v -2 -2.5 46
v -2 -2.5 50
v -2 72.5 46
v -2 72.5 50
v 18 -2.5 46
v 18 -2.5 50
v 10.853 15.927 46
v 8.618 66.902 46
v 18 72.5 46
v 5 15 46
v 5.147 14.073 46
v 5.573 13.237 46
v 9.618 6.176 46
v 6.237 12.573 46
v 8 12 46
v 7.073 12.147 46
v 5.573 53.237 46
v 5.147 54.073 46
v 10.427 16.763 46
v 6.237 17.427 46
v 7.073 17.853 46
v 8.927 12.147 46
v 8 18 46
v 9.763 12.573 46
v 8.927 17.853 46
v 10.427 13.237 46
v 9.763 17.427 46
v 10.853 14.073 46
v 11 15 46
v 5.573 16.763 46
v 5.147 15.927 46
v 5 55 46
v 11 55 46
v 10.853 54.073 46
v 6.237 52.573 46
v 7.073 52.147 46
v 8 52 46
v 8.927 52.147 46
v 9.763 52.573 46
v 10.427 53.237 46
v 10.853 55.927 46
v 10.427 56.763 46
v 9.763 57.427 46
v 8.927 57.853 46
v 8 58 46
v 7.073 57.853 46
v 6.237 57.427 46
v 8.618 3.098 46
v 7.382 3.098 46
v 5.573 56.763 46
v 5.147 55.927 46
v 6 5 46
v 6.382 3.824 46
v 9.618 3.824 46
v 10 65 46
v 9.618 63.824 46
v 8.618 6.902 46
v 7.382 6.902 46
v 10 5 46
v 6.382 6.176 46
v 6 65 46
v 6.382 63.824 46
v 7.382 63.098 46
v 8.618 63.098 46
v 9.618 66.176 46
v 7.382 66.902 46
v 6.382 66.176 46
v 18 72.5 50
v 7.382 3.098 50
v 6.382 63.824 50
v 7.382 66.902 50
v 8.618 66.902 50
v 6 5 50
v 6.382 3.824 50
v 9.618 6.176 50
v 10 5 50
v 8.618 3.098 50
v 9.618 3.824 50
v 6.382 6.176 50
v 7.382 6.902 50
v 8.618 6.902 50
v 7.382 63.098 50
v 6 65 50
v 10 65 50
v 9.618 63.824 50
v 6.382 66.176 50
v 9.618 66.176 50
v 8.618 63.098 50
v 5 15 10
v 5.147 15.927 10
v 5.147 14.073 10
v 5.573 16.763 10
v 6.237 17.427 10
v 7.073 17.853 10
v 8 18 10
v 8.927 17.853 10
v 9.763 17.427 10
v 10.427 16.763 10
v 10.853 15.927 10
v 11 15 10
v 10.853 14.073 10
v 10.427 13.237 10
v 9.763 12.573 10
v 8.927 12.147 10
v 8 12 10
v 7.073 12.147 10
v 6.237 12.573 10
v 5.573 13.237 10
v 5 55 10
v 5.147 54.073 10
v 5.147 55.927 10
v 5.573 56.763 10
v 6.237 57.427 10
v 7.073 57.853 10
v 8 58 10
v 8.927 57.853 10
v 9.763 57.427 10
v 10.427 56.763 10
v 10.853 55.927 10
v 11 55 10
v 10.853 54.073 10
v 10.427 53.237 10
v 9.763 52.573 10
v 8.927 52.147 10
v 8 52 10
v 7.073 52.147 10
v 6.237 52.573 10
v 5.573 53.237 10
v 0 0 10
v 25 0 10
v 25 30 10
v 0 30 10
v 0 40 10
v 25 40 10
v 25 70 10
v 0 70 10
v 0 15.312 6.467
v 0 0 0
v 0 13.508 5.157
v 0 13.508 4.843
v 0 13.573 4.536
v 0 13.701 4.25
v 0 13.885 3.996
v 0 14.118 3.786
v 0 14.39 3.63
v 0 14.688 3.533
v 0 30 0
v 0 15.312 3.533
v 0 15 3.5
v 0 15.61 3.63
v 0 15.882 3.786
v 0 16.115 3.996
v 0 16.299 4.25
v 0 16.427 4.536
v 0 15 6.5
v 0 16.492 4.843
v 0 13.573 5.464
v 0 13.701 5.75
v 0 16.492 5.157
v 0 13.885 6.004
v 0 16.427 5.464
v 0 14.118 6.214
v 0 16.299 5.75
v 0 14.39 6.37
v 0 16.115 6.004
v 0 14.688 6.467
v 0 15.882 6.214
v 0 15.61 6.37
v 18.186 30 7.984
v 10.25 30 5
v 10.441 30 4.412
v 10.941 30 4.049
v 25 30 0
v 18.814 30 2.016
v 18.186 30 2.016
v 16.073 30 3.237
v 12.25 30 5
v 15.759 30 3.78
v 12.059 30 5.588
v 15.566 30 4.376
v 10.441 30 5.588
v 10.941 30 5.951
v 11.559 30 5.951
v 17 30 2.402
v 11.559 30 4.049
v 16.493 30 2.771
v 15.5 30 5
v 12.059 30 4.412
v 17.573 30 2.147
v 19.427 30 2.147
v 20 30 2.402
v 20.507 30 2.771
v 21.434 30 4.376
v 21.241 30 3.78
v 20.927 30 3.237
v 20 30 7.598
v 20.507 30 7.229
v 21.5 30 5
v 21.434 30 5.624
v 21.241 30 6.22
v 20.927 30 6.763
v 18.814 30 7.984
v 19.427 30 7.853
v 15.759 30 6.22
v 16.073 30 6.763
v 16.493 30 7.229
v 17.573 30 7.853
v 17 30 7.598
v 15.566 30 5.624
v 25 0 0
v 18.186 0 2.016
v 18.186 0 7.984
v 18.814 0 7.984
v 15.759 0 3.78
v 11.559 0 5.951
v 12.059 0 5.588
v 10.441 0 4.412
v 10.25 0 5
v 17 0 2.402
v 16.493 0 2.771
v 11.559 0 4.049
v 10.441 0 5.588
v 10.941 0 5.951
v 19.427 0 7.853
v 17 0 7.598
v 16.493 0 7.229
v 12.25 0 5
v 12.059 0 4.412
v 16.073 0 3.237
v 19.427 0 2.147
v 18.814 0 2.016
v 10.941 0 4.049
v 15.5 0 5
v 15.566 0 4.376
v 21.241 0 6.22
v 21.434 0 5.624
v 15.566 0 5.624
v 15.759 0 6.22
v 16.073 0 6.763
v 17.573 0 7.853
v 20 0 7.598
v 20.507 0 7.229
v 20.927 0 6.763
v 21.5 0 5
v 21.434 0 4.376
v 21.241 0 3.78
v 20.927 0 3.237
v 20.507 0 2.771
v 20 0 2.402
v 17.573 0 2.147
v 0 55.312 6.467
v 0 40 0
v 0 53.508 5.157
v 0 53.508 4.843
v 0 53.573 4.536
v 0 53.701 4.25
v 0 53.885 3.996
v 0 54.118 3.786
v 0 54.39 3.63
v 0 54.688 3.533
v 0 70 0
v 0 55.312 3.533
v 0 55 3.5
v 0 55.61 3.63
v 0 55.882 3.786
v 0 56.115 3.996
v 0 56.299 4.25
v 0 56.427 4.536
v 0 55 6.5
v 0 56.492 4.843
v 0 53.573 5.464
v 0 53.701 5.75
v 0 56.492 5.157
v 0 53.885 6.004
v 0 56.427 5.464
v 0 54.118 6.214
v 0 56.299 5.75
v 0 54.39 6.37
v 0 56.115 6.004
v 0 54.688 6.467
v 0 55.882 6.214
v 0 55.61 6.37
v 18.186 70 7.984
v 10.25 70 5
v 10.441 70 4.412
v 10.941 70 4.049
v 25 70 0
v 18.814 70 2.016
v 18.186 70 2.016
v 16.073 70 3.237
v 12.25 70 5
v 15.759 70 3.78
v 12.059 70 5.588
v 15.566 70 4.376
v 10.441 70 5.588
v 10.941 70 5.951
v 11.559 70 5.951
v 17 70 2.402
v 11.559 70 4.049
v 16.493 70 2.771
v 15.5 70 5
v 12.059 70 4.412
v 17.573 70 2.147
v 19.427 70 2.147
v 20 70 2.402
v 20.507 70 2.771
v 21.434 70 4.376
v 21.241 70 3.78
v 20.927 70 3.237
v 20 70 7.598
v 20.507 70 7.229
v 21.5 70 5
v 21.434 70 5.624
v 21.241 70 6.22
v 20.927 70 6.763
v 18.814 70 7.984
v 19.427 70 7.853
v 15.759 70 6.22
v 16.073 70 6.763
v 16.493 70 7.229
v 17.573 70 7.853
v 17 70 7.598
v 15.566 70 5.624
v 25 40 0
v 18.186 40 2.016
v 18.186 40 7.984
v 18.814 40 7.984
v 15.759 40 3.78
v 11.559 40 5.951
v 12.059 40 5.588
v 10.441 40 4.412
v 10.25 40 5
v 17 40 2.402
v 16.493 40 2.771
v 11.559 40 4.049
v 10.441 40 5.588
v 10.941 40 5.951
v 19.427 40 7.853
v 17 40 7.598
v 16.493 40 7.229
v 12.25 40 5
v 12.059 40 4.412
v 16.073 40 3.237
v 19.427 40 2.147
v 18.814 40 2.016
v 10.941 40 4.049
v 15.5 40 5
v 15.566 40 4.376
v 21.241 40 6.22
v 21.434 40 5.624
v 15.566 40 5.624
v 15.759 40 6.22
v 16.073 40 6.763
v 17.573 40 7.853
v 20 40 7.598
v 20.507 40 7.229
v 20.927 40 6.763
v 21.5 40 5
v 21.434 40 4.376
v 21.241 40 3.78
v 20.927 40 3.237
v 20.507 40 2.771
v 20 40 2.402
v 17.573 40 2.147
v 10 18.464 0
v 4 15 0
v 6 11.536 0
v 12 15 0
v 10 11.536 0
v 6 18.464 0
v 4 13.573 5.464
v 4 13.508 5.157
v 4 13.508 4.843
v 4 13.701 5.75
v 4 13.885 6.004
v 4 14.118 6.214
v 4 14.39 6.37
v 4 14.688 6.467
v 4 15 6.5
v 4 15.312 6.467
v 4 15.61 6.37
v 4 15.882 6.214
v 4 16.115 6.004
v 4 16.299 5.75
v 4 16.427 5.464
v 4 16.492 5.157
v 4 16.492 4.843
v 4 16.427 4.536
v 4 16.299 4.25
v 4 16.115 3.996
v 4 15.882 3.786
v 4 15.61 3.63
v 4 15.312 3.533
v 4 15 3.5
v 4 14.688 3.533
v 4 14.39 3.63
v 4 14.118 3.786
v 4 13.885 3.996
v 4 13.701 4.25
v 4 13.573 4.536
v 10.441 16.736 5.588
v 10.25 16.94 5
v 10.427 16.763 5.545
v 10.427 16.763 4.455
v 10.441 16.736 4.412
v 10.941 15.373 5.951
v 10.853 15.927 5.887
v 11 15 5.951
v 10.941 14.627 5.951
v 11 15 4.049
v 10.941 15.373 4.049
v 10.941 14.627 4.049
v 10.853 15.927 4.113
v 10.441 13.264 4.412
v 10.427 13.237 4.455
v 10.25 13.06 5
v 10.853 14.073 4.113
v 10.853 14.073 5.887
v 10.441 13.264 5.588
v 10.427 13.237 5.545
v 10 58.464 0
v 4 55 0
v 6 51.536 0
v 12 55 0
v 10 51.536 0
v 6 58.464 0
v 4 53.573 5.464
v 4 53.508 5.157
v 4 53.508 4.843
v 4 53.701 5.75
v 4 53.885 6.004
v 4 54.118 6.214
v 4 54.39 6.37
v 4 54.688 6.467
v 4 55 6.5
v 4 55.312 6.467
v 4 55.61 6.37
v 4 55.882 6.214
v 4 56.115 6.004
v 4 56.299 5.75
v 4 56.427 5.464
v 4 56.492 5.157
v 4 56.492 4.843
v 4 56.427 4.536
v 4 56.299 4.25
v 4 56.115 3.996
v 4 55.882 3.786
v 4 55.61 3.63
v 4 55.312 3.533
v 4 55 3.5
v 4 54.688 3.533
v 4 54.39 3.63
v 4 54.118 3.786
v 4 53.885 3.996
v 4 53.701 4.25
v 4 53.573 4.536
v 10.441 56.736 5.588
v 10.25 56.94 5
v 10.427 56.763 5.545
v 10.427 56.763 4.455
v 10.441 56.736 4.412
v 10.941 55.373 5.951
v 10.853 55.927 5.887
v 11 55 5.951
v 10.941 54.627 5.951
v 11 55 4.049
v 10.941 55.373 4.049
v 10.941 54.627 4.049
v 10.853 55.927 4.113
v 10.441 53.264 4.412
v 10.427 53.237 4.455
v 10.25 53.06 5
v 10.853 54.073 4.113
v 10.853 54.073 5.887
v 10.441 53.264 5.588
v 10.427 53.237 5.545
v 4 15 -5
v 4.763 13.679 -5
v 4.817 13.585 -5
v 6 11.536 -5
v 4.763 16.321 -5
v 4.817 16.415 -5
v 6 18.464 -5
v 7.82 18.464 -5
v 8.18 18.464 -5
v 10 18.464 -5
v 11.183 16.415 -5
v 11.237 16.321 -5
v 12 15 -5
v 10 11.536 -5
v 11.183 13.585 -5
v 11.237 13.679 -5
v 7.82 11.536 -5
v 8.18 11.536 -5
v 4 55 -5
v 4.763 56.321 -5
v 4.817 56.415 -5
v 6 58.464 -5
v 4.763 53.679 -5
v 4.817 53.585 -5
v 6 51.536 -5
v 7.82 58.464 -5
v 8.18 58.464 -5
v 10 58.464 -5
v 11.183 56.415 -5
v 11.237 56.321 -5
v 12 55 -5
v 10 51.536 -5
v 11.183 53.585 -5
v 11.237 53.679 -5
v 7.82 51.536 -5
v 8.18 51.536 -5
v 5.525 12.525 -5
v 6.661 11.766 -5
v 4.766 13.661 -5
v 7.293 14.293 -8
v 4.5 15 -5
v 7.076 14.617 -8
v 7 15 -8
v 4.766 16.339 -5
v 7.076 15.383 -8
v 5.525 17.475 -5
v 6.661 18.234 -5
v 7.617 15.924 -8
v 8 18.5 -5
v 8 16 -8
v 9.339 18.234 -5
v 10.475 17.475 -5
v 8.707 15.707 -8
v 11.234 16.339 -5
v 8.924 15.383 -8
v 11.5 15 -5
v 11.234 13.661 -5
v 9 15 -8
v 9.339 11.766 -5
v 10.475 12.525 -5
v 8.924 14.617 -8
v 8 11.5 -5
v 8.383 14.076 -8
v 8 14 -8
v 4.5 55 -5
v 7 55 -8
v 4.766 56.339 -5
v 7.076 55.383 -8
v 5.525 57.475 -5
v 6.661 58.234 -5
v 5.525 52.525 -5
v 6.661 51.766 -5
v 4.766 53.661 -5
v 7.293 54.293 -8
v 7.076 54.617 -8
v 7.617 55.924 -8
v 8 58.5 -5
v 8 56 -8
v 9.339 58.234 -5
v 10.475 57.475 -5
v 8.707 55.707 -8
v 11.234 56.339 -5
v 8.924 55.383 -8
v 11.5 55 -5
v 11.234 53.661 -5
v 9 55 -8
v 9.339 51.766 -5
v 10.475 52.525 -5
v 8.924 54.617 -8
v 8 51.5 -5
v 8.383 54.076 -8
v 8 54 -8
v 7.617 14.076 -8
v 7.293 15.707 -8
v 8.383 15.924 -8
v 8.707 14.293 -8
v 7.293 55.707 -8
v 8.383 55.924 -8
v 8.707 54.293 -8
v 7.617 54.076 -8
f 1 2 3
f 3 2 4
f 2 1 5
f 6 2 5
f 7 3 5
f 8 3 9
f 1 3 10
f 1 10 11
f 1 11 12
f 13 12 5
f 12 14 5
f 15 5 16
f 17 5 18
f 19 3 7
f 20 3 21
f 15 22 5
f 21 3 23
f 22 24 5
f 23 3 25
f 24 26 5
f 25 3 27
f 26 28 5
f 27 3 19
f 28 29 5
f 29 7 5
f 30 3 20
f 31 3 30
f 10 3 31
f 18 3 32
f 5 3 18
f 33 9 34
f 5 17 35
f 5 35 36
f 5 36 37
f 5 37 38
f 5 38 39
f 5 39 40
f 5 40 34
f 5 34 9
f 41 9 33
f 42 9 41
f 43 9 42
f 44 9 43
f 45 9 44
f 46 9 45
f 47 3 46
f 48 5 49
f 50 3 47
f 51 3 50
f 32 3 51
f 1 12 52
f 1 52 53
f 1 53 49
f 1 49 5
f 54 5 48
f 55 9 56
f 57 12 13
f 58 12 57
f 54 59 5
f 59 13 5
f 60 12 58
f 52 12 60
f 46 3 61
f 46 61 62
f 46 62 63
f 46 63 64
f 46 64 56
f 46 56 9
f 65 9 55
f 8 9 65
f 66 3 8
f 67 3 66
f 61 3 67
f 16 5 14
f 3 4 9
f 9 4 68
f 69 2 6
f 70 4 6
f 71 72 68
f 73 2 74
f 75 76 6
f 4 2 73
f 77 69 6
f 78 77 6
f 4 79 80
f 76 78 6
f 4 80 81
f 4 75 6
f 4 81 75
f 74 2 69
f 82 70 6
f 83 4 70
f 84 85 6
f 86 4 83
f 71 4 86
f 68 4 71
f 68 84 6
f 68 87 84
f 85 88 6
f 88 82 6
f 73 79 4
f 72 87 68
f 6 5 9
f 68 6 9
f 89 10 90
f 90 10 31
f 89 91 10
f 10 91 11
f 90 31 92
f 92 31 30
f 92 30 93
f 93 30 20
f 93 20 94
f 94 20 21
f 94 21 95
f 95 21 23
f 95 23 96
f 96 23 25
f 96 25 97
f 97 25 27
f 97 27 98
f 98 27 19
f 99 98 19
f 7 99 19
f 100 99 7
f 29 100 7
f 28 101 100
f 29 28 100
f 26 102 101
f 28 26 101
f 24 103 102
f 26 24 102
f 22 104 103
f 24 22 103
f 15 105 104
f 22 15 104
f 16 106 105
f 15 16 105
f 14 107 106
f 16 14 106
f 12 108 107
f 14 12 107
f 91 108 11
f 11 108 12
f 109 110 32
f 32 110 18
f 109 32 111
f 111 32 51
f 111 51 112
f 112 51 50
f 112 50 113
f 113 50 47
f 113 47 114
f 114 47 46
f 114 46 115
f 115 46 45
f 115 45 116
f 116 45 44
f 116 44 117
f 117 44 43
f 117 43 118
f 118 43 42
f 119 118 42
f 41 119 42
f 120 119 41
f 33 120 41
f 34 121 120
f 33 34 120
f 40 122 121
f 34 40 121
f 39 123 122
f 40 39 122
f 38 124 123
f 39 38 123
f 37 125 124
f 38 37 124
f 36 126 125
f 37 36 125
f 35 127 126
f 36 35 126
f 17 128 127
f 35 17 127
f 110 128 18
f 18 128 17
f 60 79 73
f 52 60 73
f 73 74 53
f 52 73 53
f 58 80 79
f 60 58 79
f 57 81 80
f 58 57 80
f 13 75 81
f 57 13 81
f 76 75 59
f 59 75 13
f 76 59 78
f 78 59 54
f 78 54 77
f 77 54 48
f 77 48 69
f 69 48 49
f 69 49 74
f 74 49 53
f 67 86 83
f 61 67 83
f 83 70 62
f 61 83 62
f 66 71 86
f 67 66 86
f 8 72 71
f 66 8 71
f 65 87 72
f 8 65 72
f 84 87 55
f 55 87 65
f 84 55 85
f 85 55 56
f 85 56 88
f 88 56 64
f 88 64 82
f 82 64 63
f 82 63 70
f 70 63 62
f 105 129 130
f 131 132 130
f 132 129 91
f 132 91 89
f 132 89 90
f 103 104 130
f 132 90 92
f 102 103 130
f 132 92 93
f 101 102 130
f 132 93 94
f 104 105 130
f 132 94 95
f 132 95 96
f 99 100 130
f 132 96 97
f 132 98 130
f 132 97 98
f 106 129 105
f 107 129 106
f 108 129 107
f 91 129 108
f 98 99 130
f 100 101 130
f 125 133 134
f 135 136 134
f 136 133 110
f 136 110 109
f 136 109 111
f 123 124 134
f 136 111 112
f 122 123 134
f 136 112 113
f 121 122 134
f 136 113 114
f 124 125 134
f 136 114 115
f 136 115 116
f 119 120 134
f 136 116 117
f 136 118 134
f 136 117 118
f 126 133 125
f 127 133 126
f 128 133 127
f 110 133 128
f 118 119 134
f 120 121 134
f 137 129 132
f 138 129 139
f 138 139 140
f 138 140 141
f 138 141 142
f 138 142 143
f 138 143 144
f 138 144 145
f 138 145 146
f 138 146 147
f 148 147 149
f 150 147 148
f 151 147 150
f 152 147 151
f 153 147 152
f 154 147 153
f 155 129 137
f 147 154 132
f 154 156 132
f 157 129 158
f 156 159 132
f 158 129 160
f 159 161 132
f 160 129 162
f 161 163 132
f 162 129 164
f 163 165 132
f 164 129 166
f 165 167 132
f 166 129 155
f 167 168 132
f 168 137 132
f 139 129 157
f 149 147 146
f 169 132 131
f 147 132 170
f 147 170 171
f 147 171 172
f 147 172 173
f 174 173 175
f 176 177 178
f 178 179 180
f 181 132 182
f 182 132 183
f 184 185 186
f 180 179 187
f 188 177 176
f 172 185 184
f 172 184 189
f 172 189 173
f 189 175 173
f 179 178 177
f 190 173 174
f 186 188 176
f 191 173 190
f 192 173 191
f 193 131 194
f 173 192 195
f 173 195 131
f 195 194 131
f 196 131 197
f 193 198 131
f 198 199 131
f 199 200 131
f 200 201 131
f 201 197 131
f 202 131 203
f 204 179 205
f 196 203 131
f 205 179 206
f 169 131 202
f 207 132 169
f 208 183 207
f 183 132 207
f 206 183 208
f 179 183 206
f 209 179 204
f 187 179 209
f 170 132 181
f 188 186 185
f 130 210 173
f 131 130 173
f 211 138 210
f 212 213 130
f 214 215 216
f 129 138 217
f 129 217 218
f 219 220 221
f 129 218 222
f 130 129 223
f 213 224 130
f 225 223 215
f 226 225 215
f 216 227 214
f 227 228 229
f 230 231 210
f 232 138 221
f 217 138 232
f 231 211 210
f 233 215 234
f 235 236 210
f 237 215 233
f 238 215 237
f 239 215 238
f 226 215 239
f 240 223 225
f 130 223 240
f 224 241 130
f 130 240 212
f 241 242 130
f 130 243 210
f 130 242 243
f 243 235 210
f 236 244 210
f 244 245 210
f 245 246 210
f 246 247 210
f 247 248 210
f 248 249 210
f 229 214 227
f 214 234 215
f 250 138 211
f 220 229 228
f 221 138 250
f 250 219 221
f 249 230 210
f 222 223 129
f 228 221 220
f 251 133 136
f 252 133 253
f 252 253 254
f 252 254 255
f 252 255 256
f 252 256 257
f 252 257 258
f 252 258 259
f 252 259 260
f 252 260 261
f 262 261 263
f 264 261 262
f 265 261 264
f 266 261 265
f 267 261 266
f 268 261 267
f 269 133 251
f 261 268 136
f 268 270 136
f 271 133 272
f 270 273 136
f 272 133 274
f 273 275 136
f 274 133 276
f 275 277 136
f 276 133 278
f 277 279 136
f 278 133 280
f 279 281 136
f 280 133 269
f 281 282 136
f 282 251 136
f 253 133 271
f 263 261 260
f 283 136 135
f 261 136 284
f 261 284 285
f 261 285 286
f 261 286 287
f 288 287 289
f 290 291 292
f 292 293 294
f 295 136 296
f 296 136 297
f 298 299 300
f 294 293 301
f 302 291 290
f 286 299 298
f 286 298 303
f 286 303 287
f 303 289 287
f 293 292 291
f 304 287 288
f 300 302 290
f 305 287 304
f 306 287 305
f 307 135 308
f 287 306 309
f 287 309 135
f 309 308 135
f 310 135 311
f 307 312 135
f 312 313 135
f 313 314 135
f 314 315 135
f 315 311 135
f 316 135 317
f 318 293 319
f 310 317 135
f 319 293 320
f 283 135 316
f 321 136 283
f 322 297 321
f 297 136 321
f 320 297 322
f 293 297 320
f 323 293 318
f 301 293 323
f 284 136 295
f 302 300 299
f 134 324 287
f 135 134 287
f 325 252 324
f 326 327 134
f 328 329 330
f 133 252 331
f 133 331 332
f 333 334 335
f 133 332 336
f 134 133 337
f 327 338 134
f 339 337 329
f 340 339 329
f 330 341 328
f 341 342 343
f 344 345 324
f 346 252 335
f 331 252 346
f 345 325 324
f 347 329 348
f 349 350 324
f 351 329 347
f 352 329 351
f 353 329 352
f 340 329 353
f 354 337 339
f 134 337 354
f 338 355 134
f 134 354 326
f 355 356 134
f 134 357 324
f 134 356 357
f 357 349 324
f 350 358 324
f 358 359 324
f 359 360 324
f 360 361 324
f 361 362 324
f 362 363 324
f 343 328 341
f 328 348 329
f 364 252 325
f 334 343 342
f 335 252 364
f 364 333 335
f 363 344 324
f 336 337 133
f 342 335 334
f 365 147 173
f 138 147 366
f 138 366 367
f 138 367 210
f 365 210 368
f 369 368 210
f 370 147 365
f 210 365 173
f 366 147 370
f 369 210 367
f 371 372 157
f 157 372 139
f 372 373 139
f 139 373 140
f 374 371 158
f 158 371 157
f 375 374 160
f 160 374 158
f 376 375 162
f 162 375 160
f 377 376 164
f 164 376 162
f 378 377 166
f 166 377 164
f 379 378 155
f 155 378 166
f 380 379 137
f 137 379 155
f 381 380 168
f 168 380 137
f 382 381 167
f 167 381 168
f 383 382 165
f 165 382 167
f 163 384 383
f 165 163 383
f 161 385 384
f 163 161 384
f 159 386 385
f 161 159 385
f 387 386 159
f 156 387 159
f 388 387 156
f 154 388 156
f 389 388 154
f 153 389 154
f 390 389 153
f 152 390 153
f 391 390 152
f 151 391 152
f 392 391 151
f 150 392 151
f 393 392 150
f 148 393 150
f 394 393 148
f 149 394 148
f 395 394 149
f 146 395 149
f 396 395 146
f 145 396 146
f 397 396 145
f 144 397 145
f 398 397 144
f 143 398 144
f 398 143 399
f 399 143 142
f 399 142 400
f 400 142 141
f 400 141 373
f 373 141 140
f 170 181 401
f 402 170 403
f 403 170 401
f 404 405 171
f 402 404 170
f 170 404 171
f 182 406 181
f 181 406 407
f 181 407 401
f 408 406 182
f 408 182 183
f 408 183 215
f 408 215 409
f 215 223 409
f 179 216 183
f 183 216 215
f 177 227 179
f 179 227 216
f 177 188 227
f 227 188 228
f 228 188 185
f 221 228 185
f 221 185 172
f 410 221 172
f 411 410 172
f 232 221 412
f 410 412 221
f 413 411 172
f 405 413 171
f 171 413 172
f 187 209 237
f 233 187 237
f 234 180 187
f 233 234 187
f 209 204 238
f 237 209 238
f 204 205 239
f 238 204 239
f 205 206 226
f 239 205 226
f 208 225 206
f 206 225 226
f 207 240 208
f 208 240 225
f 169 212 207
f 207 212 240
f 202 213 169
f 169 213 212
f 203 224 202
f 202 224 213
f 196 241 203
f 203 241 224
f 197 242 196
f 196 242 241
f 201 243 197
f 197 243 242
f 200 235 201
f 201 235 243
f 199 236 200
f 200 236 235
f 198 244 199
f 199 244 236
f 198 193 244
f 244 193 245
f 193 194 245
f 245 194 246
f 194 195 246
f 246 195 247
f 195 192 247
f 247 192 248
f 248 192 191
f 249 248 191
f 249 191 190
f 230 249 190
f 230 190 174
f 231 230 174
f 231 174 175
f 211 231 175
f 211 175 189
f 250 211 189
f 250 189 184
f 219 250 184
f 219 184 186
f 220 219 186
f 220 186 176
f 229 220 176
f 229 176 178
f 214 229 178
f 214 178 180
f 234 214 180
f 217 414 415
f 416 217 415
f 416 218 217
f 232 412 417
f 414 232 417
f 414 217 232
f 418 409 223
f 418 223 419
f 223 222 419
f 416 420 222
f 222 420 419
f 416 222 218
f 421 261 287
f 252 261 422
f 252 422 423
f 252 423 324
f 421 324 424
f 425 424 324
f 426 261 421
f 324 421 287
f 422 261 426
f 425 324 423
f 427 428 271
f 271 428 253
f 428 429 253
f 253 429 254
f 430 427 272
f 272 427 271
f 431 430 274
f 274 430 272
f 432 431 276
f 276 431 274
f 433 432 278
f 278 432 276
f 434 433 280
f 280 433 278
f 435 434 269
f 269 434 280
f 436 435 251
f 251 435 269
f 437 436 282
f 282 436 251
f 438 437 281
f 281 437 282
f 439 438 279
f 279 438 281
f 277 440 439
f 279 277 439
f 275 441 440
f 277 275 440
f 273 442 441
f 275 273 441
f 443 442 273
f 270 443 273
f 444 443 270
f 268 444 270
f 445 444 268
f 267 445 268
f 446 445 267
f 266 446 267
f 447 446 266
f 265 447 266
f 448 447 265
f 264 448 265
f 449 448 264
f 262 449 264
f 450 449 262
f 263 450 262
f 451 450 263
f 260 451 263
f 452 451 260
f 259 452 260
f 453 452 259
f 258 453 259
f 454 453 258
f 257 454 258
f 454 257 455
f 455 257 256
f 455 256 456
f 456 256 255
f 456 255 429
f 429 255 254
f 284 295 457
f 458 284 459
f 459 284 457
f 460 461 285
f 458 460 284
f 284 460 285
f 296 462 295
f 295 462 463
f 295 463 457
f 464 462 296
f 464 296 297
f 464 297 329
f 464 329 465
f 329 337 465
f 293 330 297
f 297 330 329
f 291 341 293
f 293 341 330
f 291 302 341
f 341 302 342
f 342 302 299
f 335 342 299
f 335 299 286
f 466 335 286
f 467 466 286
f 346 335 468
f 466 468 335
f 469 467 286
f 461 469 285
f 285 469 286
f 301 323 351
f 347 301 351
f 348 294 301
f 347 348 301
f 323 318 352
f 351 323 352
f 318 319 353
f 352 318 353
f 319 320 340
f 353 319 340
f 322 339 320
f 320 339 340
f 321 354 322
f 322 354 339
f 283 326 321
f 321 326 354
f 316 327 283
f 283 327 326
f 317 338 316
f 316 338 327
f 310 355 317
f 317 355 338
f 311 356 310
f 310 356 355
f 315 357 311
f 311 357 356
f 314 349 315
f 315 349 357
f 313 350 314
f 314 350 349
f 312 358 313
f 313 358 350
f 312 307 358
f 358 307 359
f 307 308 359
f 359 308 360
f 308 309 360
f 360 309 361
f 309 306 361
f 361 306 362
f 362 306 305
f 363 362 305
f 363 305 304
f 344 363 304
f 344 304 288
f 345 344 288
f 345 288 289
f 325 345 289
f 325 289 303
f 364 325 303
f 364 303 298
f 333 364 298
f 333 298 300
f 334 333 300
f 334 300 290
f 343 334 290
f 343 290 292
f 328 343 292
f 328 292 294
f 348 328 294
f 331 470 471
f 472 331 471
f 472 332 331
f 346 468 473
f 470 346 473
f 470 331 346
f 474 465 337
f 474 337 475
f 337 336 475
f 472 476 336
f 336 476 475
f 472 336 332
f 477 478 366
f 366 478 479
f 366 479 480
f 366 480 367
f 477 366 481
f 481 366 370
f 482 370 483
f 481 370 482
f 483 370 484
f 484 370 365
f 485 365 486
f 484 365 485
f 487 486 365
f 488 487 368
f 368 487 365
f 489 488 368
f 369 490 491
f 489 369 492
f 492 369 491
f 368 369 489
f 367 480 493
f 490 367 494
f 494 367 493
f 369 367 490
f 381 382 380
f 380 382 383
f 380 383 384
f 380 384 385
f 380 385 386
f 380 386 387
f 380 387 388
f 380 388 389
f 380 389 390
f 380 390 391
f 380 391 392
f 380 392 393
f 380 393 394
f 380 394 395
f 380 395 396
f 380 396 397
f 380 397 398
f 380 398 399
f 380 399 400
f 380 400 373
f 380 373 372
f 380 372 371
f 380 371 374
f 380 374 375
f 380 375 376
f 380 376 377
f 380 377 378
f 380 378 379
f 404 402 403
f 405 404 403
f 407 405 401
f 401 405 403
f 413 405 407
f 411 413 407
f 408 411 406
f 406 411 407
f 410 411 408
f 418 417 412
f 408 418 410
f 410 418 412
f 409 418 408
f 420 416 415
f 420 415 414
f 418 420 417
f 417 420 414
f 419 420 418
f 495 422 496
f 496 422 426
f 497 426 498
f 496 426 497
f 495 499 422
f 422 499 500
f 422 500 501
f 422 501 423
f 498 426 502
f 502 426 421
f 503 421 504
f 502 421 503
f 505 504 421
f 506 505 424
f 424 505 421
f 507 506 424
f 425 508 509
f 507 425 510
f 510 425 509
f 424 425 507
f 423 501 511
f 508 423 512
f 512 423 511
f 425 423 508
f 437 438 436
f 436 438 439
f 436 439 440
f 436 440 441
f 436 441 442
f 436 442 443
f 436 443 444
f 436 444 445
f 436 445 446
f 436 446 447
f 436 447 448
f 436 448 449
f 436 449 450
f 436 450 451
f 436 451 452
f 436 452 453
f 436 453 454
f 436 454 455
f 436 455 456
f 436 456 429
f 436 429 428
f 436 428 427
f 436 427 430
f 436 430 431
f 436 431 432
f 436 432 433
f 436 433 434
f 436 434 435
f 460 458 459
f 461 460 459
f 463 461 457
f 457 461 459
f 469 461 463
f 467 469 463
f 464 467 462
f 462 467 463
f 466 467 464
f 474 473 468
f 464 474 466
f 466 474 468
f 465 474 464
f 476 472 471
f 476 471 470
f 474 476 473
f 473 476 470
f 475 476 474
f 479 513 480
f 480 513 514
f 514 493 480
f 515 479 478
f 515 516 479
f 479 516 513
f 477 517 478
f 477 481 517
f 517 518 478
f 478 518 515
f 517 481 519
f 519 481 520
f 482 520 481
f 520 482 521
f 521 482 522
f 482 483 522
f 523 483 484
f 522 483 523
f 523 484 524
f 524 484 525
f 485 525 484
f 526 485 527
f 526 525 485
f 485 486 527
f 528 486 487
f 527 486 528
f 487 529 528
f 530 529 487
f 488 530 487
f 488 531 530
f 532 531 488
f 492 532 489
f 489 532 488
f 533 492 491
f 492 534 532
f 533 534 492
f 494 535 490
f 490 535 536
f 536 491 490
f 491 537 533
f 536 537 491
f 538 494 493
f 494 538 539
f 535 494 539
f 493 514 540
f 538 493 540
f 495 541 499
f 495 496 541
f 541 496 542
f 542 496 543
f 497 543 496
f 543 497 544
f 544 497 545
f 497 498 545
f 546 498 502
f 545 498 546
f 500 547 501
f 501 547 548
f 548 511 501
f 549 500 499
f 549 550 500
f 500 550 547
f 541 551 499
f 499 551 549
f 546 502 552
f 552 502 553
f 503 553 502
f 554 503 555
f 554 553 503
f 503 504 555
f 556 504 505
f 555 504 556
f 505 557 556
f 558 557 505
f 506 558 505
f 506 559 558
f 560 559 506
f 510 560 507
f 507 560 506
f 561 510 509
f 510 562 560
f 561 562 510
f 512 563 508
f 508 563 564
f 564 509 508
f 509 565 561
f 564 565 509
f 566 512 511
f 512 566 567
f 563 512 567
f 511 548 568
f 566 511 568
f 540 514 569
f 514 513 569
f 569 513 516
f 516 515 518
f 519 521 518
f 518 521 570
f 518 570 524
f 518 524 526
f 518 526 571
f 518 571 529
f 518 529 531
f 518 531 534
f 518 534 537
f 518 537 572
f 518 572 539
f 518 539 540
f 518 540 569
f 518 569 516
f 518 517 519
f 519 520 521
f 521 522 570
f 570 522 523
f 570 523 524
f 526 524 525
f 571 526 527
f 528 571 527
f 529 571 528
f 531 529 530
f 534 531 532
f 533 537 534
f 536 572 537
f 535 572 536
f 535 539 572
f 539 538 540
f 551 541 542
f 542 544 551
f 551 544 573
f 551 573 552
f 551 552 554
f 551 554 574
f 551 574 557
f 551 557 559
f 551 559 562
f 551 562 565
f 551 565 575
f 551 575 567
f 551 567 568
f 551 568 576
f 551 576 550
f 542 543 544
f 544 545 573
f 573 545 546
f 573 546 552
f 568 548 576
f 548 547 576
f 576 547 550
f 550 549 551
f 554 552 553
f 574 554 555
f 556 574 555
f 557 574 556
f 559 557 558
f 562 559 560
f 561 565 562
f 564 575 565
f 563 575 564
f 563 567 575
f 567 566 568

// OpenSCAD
// catnozzle v0.0.0 alfa
// bloque calefactor
// GNU GPL v3
// Chema (josema@pentabyte.es) and contributors

largo = 25;
ancho = 30;
alto = 10;
rpral = 6/2;
term = 1.5;
cal = 6/2;
plet_long=65+10;

module bloquecal()
{

	difference() {
		//bloque
		cube([largo,ancho,alto]);
		
		//hueco del portafilamento
		translate([3+rpral+2, ancho/2, -1])
		cylinder(h = alto+2, r1 = rpral, r2=rpral);
		
		//hueco del calefactor
		rotate([90,0,0])
		translate([3+rpral*2+cal+term*3+2, alto/2, -ancho-1])
		cylinder(h = ancho+2, r= cal, $fn=30);

		//hueco del termistor
		rotate([90,0,0])
		translate([3+rpral*2+term*1.5, alto/2, -ancho-1])
		cylinder(h = ancho+2, r= term/1.5, $fn=10);

		//hueco roscado fijación
		rotate([0,90,0])
		translate([-alto/2, ancho/2, -1])
		cylinder(h = 5, r= 1.5, $fn=30);
	}


}

bloquecal();


translate([0,40,0]){
bloquecal();
translate([10-2,15,-5]){
cylinder(r=3,h=55,$fn=20);
cylinder(r=4,h=6,$fn=6);
translate([0,0,-3])
cylinder(r1=1,r2=3.5,h=3,$fn=16);

}}

translate([10-2,15,-5]){
cylinder(r=3,h=55,$fn=20);
cylinder(r=4,h=6,$fn=6);
translate([0,0,-3])
cylinder(r1=1,r2=3.5,h=3,$fn=16);

translate([0,20,53]){
		difference(){
		cube([20,plet_long,4], center = true);
		//translate([0,0,53])
		translate([0,30,1]) cylinder(r=2,h=10,$fn=10,center=true);
		//translate([0,0,53])
		translate([0,-30,1]) cylinder(r=2,h=10,$fn=10,center=true);
		}
	
	}
}
